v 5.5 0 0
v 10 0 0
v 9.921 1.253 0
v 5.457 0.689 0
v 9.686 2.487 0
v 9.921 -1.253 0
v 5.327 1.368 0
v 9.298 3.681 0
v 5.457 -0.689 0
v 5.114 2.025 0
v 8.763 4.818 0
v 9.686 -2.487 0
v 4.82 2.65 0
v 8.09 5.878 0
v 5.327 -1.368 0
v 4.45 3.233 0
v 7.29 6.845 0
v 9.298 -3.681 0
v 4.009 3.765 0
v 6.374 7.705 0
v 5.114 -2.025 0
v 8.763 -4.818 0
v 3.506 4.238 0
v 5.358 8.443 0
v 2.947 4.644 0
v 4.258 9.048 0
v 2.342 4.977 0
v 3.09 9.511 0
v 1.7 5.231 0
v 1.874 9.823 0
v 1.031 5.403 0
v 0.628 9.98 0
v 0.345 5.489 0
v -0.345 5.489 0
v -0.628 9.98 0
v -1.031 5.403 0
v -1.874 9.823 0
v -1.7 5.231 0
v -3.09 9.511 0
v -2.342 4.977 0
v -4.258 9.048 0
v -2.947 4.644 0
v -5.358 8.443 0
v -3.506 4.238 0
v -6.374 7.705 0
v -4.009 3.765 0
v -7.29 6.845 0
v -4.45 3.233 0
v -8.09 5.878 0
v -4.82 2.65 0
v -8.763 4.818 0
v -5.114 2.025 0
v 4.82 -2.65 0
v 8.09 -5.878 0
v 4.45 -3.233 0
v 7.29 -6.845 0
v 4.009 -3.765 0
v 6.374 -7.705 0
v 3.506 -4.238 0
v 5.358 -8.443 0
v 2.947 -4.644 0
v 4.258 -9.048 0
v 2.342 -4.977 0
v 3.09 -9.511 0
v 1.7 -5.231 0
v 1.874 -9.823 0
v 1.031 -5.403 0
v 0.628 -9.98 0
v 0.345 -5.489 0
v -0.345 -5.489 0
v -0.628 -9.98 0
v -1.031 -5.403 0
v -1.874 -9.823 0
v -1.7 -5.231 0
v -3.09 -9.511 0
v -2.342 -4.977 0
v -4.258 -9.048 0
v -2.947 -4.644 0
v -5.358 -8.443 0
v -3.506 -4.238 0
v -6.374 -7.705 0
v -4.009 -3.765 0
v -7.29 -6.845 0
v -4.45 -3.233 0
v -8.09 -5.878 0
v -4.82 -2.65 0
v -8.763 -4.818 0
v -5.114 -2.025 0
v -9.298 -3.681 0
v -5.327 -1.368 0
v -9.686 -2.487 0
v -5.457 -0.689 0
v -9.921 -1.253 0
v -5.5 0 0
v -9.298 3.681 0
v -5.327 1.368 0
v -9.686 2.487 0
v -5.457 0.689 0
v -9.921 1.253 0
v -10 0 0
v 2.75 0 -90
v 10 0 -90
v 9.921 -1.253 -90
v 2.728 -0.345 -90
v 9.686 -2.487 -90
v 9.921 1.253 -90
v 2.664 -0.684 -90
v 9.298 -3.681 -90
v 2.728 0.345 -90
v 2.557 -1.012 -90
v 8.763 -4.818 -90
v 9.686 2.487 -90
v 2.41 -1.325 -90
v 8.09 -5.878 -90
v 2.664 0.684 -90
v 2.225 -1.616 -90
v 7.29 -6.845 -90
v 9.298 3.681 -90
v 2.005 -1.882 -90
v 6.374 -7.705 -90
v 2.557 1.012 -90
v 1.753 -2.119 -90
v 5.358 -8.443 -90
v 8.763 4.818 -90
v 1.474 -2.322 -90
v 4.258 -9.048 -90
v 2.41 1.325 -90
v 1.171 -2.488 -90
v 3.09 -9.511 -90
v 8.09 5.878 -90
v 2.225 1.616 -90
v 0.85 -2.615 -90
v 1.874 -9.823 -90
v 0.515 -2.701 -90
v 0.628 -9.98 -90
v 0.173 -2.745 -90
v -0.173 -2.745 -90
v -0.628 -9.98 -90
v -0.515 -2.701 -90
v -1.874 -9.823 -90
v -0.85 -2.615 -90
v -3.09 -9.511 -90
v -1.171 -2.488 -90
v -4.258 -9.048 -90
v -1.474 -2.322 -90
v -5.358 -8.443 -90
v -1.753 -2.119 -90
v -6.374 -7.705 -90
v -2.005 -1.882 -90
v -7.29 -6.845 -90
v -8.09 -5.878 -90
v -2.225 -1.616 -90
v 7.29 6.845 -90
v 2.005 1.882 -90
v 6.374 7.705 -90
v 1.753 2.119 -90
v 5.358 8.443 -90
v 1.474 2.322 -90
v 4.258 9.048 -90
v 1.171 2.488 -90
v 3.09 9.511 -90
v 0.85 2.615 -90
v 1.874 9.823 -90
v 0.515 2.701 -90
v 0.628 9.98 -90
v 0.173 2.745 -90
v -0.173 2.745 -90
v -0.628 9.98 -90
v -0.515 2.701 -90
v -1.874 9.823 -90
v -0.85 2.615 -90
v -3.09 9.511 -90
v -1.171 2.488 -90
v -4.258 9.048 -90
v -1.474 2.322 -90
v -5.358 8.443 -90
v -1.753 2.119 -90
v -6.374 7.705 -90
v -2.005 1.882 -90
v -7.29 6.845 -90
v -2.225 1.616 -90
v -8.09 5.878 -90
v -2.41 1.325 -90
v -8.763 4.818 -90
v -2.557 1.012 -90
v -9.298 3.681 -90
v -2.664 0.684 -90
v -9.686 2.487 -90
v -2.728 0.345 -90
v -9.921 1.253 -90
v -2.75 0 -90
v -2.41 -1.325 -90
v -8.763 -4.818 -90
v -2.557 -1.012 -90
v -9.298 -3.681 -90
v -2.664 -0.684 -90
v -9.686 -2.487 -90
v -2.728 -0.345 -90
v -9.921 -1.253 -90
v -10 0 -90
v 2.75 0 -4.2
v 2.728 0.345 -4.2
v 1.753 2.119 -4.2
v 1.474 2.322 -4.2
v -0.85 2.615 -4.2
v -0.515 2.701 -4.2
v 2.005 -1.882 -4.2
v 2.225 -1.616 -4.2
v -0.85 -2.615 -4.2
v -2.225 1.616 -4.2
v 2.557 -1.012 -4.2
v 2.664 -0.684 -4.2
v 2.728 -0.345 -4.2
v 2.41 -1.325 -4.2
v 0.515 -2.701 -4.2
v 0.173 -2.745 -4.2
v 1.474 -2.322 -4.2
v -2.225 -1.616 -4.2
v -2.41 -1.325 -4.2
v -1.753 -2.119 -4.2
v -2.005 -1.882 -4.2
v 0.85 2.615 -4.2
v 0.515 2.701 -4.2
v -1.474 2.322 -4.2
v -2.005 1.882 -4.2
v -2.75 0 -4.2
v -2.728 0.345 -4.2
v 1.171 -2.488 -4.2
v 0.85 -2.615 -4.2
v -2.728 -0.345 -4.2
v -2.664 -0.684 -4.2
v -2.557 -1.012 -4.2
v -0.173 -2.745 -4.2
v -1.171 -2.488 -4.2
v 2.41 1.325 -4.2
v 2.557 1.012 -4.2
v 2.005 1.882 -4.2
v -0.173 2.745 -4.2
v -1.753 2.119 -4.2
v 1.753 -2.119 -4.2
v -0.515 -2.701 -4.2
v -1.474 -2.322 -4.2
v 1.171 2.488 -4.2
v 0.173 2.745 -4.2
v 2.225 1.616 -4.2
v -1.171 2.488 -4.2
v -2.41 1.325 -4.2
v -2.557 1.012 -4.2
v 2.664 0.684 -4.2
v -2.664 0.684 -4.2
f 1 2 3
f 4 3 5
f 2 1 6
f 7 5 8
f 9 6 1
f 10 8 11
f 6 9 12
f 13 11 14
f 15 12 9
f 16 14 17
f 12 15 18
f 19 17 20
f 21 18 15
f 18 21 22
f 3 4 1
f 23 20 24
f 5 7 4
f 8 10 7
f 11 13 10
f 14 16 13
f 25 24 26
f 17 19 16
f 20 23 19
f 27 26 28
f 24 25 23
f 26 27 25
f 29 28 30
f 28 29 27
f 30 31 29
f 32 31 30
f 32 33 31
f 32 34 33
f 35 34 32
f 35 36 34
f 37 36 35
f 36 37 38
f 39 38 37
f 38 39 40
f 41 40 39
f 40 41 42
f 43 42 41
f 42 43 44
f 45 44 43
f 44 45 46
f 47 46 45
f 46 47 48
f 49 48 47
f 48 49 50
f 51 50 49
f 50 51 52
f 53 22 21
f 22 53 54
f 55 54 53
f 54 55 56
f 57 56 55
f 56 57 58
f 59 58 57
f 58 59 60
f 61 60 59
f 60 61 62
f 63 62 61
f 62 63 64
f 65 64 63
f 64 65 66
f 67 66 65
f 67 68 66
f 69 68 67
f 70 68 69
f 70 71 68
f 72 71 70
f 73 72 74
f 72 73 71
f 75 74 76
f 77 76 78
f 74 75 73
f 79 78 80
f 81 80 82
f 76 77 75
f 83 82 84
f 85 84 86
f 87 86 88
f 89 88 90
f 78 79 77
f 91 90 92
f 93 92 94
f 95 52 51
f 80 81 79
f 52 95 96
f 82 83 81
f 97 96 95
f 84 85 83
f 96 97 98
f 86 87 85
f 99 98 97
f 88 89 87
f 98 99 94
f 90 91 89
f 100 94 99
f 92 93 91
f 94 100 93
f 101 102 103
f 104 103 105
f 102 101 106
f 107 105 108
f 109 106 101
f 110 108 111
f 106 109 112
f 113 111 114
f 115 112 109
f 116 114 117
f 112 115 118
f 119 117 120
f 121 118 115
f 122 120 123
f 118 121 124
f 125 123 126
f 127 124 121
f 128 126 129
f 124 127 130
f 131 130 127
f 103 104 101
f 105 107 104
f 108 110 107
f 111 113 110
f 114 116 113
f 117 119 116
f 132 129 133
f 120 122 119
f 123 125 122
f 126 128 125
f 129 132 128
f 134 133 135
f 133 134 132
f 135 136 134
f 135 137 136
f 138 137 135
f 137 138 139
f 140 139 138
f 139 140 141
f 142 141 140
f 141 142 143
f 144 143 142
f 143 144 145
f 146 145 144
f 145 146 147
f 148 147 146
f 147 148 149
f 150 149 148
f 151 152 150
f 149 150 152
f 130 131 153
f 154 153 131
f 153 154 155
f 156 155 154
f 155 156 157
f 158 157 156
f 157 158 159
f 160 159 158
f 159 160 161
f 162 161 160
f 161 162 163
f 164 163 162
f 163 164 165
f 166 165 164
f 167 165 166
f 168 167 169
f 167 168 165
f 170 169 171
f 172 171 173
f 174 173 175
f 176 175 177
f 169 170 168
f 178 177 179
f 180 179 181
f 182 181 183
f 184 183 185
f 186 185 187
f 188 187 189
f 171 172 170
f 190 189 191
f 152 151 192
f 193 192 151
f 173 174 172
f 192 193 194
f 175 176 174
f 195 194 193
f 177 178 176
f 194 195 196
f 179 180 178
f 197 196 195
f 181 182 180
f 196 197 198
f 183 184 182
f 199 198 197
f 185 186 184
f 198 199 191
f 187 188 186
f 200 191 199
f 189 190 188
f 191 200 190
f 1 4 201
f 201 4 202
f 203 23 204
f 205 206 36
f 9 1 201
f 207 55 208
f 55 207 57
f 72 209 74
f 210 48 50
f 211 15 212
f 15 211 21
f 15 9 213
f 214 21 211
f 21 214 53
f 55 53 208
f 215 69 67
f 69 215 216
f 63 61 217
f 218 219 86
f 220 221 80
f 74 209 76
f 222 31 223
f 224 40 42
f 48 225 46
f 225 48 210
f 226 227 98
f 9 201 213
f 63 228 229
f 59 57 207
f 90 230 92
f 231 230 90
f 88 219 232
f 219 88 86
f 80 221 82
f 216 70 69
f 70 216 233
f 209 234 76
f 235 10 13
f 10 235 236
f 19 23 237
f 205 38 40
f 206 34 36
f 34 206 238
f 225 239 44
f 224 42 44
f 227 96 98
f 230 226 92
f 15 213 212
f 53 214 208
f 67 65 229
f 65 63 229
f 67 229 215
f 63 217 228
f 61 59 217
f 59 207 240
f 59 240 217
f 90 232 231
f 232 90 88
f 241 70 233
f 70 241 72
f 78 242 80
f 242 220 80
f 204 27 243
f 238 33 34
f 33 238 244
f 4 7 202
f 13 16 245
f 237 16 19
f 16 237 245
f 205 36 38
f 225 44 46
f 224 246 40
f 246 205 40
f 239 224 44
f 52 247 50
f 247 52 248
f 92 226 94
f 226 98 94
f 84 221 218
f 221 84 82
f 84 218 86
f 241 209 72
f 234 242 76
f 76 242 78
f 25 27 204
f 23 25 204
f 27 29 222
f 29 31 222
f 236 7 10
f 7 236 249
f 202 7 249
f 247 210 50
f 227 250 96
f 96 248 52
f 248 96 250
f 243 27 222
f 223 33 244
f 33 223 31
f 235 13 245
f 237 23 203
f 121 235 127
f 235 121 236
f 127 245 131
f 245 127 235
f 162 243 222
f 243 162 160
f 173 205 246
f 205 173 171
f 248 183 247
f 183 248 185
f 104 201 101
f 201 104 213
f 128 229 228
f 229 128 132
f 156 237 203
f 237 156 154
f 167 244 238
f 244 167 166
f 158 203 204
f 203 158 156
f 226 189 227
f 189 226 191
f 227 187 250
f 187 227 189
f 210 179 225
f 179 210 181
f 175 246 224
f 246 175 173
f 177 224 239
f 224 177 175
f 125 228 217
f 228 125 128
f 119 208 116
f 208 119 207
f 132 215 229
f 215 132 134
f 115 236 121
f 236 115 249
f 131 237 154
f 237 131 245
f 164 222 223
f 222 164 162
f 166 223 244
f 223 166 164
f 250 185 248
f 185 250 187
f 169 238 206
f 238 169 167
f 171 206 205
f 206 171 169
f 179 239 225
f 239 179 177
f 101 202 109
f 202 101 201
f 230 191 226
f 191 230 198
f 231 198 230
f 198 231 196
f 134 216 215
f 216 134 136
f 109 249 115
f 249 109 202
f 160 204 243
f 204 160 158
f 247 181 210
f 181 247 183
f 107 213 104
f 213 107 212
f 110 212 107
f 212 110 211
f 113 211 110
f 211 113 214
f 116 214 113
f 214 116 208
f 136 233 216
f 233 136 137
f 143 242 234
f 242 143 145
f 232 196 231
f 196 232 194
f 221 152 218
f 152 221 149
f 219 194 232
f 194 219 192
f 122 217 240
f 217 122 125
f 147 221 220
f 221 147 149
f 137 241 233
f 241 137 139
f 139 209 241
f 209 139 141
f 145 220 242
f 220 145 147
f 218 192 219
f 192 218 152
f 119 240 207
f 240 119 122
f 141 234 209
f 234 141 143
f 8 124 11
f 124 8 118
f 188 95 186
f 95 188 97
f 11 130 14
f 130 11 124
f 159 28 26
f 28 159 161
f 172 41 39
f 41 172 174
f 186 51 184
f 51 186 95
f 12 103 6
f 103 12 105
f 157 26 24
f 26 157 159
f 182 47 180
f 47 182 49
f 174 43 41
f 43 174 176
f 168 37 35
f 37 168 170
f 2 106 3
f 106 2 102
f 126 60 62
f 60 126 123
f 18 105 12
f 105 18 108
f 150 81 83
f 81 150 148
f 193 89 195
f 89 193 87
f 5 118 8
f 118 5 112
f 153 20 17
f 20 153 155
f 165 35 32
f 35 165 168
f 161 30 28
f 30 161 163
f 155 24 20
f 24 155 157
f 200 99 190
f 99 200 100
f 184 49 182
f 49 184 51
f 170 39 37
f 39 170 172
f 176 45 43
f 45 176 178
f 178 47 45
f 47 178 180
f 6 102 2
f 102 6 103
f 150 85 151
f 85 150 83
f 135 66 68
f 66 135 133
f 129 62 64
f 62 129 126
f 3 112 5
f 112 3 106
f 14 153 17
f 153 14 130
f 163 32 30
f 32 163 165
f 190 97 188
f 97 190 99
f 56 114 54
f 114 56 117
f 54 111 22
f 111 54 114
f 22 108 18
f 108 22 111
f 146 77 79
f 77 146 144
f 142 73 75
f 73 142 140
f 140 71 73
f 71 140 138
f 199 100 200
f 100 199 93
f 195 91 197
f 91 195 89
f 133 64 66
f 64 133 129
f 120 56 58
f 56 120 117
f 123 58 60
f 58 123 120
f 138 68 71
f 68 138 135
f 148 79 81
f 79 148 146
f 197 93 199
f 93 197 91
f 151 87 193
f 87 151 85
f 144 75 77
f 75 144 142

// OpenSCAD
$fn = 50;


difference() {
	union() {
		translate(v = [0, 0, -90.0000000000]) {
			cylinder(h = 90, r = 10.0000000000);
		}
		cylinder(h = 0, r = 16.0000000000);
	}
	union() {
		translate(v = [0, 0, 0]) {
			rotate(a = [0, 0, 0]) {
				difference() {
					union() {
						#translate(v = [0, 0, -90.0000000000]) {
							cylinder(h = 90, r = 2.2500000000);
						}
						#translate(v = [0, 0, -4.2000000000]) {
							cylinder(h = 4.2000000000, r1 = 2.7500000000, r2 = 5.5000000000);
						}
						#translate(v = [0, 0, -90.0000000000]) {
							cylinder(h = 90, r = 2.7500000000);
						}
						#translate(v = [0, 0, -90.0000000000]) {
							cylinder(h = 90, r = 2.2500000000);
						}
					}
					union();
				}
			}
		}
	}
}
